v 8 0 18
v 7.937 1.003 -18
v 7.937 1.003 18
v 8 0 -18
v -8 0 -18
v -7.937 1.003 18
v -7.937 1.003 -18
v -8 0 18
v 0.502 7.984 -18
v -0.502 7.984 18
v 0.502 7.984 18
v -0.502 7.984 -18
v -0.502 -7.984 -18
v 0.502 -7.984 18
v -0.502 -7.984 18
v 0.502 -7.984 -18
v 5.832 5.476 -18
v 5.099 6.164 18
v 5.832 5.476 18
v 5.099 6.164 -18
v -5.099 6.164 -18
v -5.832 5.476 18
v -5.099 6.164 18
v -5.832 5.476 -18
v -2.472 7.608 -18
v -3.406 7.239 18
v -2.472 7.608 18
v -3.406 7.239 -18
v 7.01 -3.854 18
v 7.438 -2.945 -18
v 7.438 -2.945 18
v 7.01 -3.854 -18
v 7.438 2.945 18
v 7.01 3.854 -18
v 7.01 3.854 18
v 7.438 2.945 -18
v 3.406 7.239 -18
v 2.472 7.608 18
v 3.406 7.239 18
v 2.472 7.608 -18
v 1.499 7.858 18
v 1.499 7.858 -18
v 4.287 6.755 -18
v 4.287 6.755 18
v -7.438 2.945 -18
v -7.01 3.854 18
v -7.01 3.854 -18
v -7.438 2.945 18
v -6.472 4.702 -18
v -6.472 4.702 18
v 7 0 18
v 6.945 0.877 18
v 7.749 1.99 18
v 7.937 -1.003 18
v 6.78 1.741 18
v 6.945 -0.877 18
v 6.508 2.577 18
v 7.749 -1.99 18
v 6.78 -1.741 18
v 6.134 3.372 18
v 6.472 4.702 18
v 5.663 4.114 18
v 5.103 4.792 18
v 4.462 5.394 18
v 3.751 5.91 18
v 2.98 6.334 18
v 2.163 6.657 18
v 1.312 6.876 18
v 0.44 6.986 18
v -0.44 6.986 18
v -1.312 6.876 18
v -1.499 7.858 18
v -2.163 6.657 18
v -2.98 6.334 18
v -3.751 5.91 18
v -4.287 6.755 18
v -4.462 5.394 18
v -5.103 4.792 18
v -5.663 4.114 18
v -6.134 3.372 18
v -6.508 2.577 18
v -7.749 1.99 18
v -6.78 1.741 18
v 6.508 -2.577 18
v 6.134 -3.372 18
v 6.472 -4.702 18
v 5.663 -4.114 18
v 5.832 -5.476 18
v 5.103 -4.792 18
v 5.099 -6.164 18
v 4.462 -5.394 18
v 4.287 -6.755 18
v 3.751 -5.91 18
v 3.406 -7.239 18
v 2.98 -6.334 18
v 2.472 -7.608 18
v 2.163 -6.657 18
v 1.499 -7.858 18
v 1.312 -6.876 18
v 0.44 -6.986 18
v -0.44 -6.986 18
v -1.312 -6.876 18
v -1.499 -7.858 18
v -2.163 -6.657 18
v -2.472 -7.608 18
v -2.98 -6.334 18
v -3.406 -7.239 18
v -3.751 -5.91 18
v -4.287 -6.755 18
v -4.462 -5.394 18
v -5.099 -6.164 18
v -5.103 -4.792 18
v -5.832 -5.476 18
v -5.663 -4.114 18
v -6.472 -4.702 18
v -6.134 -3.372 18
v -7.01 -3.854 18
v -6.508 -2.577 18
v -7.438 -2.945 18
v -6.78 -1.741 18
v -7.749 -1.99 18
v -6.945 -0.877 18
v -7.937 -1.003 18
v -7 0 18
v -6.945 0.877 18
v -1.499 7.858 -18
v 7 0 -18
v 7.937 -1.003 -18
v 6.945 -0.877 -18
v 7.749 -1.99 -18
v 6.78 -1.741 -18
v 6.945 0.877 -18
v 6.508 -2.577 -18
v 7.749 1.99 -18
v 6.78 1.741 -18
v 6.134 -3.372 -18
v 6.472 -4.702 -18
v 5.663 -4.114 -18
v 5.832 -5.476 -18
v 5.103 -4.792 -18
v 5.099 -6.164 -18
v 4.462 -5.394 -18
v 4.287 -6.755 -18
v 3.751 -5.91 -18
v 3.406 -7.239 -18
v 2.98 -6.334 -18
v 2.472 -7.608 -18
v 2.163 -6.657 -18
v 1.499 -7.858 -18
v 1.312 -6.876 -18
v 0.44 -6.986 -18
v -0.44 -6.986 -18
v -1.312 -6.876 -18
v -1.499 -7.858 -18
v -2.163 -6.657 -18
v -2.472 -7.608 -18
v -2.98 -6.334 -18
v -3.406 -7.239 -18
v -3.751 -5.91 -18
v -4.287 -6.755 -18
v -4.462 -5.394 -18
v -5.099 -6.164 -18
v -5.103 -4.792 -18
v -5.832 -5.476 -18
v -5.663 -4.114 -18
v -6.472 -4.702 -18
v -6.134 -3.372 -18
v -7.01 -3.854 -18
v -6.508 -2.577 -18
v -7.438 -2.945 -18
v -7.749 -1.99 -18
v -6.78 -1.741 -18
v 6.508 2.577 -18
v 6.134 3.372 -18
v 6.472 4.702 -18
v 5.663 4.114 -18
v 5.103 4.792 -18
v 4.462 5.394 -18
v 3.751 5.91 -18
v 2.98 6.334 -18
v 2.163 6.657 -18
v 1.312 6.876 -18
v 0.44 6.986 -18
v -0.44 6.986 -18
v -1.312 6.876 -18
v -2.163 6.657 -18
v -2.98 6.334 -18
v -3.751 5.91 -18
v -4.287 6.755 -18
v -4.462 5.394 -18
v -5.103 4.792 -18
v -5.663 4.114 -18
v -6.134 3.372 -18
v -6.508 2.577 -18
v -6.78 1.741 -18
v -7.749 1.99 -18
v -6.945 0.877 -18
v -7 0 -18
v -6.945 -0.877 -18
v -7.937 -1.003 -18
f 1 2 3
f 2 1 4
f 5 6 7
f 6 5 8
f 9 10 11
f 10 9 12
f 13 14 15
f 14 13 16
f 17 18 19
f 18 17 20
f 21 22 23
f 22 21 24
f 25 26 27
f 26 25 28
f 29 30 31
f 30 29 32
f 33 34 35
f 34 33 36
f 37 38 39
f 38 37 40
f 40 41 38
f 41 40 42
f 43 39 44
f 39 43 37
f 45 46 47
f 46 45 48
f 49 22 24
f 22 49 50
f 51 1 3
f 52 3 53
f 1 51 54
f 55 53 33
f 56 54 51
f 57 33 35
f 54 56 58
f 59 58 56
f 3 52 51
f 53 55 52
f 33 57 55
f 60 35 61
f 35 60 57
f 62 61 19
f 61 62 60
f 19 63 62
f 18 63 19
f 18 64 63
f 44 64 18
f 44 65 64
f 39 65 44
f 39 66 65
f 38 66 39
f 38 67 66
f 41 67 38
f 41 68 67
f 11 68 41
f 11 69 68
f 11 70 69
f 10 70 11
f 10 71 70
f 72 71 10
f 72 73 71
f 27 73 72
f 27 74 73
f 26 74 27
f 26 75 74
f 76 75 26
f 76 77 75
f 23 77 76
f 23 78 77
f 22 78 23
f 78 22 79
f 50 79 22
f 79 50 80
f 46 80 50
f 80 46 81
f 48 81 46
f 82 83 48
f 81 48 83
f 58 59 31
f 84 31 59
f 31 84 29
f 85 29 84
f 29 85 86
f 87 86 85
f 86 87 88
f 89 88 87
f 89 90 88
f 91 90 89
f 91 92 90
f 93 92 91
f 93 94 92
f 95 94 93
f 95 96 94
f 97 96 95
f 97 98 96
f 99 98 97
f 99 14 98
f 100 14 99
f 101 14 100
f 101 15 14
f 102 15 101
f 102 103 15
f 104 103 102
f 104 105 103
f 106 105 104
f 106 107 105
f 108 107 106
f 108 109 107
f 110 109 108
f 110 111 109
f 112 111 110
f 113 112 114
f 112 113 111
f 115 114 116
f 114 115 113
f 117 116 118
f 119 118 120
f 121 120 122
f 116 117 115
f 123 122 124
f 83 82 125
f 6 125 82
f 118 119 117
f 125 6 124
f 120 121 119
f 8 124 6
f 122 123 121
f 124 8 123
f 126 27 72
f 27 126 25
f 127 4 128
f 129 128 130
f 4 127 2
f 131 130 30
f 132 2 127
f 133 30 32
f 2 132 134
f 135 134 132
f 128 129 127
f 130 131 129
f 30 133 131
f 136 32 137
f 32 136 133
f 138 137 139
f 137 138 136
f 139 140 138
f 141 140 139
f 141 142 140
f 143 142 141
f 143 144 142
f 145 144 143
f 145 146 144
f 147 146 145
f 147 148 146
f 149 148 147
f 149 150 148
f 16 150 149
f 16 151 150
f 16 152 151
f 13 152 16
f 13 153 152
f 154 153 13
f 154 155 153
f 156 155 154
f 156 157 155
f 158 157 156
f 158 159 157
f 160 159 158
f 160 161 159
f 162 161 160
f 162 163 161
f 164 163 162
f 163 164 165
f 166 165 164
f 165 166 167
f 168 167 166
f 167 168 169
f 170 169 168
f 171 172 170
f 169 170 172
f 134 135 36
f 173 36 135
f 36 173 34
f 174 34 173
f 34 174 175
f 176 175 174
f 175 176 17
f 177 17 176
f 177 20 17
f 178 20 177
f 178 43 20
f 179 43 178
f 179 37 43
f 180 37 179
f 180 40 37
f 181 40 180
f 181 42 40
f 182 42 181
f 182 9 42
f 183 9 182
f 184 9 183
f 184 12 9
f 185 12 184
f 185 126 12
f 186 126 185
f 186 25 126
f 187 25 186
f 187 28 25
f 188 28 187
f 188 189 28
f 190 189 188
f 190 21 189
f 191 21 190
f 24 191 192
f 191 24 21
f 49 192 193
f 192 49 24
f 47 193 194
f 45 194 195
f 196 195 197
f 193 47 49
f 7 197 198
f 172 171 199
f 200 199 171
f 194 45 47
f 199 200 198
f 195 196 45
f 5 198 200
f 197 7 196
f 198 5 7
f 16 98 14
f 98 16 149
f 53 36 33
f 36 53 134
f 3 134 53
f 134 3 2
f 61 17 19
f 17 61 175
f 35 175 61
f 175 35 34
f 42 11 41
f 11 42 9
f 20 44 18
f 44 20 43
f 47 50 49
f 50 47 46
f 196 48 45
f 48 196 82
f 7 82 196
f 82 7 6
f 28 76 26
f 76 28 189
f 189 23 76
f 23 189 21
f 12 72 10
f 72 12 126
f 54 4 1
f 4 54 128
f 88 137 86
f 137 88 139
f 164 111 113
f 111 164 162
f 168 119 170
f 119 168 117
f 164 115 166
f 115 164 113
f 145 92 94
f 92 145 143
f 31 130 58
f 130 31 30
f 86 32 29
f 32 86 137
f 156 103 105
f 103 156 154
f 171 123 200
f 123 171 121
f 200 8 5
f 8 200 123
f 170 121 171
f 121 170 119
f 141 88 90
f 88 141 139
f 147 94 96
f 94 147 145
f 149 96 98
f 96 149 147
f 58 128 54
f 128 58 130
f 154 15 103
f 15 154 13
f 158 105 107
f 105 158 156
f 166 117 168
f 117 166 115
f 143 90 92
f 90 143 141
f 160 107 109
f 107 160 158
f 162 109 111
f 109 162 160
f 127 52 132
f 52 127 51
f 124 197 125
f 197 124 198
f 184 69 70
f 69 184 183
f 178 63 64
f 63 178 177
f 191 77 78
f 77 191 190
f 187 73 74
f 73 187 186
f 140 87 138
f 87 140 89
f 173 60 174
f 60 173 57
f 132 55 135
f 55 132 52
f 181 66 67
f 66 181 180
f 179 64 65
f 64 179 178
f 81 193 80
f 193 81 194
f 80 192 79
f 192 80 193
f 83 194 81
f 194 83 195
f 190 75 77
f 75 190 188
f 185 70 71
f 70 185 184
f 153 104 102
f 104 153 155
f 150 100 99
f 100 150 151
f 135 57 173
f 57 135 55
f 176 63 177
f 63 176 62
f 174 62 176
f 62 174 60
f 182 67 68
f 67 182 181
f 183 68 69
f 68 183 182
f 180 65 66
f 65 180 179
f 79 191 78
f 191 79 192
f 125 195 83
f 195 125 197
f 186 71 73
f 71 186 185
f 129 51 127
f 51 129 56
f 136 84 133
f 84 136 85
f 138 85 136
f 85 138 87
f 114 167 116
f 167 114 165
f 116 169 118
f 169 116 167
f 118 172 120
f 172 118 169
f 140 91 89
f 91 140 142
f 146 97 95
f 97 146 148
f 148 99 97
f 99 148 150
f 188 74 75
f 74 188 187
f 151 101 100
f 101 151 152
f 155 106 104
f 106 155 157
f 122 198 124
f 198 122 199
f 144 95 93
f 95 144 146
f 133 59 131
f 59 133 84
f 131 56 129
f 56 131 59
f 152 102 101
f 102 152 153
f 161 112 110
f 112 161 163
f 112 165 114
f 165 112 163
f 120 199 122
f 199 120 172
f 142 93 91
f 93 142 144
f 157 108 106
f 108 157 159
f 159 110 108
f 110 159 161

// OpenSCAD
$fn = 50;


difference() {
	union() {
		translate(v = [0, 0, -18.0000000000]) {
			cylinder(h = 36, r = 8.0000000000);
		}
	}
	union() {
		translate(v = [0, 0, -100.0000000000]) {
			cylinder(h = 200, r = 7);
		}
	}
}
